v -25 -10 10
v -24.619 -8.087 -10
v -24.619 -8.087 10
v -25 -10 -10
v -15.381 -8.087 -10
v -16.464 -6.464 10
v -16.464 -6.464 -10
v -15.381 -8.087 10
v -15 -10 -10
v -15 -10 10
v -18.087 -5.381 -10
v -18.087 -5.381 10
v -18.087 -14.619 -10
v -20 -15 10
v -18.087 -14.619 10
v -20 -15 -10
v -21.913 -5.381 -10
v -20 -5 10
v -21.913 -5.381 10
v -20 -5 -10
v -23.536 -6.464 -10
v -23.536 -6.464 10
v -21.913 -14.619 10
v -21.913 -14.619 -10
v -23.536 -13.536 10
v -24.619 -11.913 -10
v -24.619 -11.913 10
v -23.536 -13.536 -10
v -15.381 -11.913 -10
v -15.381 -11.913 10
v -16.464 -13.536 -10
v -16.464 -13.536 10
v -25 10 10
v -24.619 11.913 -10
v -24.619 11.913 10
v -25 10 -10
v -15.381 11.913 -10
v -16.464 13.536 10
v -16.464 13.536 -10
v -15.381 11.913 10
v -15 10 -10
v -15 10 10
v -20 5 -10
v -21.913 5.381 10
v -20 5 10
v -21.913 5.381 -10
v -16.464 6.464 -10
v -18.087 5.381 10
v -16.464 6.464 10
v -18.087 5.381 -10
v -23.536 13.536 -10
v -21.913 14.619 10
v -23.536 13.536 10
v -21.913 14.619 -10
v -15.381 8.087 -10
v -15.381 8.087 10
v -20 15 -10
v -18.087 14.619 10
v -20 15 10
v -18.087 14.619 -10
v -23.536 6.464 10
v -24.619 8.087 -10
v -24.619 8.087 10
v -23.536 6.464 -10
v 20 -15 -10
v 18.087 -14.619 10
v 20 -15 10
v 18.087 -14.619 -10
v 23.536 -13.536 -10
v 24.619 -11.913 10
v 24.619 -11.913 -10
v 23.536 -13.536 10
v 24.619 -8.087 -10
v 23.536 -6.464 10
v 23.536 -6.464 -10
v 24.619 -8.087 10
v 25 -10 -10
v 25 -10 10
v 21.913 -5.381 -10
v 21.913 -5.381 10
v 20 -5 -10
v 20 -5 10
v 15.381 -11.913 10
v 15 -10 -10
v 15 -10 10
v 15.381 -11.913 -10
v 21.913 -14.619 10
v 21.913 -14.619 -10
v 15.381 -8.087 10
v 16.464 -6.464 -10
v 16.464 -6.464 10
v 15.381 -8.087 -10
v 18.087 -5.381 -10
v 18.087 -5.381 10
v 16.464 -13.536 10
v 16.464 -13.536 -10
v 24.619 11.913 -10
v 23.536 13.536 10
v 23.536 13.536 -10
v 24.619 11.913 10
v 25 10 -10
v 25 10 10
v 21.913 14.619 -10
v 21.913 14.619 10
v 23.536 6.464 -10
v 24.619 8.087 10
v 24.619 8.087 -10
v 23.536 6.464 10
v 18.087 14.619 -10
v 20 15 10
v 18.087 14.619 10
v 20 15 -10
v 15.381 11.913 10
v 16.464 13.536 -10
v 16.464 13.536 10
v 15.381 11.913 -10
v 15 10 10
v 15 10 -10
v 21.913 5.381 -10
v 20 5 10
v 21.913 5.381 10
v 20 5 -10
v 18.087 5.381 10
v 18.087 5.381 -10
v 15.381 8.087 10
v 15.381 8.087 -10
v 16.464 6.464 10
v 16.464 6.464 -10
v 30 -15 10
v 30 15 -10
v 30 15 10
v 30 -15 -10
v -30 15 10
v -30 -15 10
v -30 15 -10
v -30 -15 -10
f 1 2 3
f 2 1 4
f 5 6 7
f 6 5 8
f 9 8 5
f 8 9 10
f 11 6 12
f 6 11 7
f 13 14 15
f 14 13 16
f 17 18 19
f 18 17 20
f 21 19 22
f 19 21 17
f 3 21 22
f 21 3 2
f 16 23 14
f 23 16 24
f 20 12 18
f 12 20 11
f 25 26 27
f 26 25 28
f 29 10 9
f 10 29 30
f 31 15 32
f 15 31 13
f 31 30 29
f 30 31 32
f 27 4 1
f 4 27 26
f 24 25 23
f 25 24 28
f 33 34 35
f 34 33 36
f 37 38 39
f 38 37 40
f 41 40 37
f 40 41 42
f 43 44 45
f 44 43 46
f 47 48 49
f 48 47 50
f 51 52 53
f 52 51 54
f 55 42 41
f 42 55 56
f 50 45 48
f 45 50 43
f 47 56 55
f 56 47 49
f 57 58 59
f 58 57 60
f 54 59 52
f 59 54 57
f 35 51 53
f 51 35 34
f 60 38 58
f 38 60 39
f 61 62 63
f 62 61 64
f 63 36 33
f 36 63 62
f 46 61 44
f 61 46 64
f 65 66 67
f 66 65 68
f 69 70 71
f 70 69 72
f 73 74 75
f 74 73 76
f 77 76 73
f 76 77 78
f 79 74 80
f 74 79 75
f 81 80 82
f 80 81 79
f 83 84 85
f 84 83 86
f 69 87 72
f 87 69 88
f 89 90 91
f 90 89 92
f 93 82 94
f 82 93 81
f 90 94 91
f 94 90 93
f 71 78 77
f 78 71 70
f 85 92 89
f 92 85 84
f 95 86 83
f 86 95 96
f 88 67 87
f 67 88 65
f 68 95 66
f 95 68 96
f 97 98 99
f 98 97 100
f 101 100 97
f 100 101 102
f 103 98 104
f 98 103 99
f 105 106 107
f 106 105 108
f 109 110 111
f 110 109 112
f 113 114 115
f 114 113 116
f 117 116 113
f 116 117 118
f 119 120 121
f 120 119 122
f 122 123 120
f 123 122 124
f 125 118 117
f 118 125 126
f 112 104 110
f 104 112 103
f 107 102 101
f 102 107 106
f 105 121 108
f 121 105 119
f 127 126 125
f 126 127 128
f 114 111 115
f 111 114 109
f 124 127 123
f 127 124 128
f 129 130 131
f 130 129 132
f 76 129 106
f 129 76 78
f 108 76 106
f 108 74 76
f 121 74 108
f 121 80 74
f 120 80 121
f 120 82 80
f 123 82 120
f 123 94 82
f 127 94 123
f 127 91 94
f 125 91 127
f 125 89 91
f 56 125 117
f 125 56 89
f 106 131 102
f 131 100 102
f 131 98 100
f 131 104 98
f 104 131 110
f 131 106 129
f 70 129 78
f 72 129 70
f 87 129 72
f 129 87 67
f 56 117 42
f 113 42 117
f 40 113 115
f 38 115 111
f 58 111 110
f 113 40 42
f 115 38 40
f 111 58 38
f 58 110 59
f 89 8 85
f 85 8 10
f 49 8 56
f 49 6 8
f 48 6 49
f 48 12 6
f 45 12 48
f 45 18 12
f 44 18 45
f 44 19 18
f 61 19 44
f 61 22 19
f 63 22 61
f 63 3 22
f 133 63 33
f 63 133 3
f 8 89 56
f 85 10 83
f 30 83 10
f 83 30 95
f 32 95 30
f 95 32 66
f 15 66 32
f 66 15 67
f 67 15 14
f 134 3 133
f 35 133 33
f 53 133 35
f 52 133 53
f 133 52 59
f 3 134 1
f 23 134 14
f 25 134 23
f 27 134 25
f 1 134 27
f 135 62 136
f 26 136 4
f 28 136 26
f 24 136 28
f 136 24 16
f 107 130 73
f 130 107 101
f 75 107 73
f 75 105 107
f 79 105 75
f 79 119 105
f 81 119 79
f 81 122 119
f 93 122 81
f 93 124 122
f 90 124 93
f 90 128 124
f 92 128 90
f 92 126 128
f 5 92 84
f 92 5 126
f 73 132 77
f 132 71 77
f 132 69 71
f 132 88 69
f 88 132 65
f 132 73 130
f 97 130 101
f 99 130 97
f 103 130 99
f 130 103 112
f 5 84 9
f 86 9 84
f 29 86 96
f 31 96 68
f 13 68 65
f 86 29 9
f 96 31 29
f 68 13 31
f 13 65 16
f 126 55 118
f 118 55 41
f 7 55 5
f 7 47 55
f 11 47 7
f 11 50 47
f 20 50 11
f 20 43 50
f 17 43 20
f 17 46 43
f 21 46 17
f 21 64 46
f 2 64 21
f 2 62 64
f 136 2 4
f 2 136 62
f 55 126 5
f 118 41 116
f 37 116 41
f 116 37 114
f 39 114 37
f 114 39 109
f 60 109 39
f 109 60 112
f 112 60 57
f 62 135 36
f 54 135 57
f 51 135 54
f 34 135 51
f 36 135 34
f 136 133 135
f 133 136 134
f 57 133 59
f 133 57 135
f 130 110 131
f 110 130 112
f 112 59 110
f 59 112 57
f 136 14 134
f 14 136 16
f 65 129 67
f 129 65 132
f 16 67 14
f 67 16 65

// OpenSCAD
// Parameters
block_length = 60; // Length of the rectangular block
block_width = 30;  // Width of the rectangular block
block_height = 20; // Height of the rectangular block
hole_diameter = 10; // Diameter of the circular holes
hole_spacing_x = 40; // Spacing between holes along the length
hole_spacing_y = 20; // Spacing between holes along the width

// Rectangular block with holes
module rectangular_block() {
    difference() {
        // Main block
        cube([block_length, block_width, block_height], center = true);
        
        // Holes on the top and bottom faces
        for (x = [-hole_spacing_x / 2, hole_spacing_x / 2]) {
            for (y = [-hole_spacing_y / 2, hole_spacing_y / 2]) {
                translate([x, y, 0])
                    cylinder(h = block_height + 2, d = hole_diameter, center = true);
            }
        }
    }
}

// Assembly
module assembly() {
    // Rectangular block with holes
    rectangular_block();
}

// Render the assembly
assembly();
